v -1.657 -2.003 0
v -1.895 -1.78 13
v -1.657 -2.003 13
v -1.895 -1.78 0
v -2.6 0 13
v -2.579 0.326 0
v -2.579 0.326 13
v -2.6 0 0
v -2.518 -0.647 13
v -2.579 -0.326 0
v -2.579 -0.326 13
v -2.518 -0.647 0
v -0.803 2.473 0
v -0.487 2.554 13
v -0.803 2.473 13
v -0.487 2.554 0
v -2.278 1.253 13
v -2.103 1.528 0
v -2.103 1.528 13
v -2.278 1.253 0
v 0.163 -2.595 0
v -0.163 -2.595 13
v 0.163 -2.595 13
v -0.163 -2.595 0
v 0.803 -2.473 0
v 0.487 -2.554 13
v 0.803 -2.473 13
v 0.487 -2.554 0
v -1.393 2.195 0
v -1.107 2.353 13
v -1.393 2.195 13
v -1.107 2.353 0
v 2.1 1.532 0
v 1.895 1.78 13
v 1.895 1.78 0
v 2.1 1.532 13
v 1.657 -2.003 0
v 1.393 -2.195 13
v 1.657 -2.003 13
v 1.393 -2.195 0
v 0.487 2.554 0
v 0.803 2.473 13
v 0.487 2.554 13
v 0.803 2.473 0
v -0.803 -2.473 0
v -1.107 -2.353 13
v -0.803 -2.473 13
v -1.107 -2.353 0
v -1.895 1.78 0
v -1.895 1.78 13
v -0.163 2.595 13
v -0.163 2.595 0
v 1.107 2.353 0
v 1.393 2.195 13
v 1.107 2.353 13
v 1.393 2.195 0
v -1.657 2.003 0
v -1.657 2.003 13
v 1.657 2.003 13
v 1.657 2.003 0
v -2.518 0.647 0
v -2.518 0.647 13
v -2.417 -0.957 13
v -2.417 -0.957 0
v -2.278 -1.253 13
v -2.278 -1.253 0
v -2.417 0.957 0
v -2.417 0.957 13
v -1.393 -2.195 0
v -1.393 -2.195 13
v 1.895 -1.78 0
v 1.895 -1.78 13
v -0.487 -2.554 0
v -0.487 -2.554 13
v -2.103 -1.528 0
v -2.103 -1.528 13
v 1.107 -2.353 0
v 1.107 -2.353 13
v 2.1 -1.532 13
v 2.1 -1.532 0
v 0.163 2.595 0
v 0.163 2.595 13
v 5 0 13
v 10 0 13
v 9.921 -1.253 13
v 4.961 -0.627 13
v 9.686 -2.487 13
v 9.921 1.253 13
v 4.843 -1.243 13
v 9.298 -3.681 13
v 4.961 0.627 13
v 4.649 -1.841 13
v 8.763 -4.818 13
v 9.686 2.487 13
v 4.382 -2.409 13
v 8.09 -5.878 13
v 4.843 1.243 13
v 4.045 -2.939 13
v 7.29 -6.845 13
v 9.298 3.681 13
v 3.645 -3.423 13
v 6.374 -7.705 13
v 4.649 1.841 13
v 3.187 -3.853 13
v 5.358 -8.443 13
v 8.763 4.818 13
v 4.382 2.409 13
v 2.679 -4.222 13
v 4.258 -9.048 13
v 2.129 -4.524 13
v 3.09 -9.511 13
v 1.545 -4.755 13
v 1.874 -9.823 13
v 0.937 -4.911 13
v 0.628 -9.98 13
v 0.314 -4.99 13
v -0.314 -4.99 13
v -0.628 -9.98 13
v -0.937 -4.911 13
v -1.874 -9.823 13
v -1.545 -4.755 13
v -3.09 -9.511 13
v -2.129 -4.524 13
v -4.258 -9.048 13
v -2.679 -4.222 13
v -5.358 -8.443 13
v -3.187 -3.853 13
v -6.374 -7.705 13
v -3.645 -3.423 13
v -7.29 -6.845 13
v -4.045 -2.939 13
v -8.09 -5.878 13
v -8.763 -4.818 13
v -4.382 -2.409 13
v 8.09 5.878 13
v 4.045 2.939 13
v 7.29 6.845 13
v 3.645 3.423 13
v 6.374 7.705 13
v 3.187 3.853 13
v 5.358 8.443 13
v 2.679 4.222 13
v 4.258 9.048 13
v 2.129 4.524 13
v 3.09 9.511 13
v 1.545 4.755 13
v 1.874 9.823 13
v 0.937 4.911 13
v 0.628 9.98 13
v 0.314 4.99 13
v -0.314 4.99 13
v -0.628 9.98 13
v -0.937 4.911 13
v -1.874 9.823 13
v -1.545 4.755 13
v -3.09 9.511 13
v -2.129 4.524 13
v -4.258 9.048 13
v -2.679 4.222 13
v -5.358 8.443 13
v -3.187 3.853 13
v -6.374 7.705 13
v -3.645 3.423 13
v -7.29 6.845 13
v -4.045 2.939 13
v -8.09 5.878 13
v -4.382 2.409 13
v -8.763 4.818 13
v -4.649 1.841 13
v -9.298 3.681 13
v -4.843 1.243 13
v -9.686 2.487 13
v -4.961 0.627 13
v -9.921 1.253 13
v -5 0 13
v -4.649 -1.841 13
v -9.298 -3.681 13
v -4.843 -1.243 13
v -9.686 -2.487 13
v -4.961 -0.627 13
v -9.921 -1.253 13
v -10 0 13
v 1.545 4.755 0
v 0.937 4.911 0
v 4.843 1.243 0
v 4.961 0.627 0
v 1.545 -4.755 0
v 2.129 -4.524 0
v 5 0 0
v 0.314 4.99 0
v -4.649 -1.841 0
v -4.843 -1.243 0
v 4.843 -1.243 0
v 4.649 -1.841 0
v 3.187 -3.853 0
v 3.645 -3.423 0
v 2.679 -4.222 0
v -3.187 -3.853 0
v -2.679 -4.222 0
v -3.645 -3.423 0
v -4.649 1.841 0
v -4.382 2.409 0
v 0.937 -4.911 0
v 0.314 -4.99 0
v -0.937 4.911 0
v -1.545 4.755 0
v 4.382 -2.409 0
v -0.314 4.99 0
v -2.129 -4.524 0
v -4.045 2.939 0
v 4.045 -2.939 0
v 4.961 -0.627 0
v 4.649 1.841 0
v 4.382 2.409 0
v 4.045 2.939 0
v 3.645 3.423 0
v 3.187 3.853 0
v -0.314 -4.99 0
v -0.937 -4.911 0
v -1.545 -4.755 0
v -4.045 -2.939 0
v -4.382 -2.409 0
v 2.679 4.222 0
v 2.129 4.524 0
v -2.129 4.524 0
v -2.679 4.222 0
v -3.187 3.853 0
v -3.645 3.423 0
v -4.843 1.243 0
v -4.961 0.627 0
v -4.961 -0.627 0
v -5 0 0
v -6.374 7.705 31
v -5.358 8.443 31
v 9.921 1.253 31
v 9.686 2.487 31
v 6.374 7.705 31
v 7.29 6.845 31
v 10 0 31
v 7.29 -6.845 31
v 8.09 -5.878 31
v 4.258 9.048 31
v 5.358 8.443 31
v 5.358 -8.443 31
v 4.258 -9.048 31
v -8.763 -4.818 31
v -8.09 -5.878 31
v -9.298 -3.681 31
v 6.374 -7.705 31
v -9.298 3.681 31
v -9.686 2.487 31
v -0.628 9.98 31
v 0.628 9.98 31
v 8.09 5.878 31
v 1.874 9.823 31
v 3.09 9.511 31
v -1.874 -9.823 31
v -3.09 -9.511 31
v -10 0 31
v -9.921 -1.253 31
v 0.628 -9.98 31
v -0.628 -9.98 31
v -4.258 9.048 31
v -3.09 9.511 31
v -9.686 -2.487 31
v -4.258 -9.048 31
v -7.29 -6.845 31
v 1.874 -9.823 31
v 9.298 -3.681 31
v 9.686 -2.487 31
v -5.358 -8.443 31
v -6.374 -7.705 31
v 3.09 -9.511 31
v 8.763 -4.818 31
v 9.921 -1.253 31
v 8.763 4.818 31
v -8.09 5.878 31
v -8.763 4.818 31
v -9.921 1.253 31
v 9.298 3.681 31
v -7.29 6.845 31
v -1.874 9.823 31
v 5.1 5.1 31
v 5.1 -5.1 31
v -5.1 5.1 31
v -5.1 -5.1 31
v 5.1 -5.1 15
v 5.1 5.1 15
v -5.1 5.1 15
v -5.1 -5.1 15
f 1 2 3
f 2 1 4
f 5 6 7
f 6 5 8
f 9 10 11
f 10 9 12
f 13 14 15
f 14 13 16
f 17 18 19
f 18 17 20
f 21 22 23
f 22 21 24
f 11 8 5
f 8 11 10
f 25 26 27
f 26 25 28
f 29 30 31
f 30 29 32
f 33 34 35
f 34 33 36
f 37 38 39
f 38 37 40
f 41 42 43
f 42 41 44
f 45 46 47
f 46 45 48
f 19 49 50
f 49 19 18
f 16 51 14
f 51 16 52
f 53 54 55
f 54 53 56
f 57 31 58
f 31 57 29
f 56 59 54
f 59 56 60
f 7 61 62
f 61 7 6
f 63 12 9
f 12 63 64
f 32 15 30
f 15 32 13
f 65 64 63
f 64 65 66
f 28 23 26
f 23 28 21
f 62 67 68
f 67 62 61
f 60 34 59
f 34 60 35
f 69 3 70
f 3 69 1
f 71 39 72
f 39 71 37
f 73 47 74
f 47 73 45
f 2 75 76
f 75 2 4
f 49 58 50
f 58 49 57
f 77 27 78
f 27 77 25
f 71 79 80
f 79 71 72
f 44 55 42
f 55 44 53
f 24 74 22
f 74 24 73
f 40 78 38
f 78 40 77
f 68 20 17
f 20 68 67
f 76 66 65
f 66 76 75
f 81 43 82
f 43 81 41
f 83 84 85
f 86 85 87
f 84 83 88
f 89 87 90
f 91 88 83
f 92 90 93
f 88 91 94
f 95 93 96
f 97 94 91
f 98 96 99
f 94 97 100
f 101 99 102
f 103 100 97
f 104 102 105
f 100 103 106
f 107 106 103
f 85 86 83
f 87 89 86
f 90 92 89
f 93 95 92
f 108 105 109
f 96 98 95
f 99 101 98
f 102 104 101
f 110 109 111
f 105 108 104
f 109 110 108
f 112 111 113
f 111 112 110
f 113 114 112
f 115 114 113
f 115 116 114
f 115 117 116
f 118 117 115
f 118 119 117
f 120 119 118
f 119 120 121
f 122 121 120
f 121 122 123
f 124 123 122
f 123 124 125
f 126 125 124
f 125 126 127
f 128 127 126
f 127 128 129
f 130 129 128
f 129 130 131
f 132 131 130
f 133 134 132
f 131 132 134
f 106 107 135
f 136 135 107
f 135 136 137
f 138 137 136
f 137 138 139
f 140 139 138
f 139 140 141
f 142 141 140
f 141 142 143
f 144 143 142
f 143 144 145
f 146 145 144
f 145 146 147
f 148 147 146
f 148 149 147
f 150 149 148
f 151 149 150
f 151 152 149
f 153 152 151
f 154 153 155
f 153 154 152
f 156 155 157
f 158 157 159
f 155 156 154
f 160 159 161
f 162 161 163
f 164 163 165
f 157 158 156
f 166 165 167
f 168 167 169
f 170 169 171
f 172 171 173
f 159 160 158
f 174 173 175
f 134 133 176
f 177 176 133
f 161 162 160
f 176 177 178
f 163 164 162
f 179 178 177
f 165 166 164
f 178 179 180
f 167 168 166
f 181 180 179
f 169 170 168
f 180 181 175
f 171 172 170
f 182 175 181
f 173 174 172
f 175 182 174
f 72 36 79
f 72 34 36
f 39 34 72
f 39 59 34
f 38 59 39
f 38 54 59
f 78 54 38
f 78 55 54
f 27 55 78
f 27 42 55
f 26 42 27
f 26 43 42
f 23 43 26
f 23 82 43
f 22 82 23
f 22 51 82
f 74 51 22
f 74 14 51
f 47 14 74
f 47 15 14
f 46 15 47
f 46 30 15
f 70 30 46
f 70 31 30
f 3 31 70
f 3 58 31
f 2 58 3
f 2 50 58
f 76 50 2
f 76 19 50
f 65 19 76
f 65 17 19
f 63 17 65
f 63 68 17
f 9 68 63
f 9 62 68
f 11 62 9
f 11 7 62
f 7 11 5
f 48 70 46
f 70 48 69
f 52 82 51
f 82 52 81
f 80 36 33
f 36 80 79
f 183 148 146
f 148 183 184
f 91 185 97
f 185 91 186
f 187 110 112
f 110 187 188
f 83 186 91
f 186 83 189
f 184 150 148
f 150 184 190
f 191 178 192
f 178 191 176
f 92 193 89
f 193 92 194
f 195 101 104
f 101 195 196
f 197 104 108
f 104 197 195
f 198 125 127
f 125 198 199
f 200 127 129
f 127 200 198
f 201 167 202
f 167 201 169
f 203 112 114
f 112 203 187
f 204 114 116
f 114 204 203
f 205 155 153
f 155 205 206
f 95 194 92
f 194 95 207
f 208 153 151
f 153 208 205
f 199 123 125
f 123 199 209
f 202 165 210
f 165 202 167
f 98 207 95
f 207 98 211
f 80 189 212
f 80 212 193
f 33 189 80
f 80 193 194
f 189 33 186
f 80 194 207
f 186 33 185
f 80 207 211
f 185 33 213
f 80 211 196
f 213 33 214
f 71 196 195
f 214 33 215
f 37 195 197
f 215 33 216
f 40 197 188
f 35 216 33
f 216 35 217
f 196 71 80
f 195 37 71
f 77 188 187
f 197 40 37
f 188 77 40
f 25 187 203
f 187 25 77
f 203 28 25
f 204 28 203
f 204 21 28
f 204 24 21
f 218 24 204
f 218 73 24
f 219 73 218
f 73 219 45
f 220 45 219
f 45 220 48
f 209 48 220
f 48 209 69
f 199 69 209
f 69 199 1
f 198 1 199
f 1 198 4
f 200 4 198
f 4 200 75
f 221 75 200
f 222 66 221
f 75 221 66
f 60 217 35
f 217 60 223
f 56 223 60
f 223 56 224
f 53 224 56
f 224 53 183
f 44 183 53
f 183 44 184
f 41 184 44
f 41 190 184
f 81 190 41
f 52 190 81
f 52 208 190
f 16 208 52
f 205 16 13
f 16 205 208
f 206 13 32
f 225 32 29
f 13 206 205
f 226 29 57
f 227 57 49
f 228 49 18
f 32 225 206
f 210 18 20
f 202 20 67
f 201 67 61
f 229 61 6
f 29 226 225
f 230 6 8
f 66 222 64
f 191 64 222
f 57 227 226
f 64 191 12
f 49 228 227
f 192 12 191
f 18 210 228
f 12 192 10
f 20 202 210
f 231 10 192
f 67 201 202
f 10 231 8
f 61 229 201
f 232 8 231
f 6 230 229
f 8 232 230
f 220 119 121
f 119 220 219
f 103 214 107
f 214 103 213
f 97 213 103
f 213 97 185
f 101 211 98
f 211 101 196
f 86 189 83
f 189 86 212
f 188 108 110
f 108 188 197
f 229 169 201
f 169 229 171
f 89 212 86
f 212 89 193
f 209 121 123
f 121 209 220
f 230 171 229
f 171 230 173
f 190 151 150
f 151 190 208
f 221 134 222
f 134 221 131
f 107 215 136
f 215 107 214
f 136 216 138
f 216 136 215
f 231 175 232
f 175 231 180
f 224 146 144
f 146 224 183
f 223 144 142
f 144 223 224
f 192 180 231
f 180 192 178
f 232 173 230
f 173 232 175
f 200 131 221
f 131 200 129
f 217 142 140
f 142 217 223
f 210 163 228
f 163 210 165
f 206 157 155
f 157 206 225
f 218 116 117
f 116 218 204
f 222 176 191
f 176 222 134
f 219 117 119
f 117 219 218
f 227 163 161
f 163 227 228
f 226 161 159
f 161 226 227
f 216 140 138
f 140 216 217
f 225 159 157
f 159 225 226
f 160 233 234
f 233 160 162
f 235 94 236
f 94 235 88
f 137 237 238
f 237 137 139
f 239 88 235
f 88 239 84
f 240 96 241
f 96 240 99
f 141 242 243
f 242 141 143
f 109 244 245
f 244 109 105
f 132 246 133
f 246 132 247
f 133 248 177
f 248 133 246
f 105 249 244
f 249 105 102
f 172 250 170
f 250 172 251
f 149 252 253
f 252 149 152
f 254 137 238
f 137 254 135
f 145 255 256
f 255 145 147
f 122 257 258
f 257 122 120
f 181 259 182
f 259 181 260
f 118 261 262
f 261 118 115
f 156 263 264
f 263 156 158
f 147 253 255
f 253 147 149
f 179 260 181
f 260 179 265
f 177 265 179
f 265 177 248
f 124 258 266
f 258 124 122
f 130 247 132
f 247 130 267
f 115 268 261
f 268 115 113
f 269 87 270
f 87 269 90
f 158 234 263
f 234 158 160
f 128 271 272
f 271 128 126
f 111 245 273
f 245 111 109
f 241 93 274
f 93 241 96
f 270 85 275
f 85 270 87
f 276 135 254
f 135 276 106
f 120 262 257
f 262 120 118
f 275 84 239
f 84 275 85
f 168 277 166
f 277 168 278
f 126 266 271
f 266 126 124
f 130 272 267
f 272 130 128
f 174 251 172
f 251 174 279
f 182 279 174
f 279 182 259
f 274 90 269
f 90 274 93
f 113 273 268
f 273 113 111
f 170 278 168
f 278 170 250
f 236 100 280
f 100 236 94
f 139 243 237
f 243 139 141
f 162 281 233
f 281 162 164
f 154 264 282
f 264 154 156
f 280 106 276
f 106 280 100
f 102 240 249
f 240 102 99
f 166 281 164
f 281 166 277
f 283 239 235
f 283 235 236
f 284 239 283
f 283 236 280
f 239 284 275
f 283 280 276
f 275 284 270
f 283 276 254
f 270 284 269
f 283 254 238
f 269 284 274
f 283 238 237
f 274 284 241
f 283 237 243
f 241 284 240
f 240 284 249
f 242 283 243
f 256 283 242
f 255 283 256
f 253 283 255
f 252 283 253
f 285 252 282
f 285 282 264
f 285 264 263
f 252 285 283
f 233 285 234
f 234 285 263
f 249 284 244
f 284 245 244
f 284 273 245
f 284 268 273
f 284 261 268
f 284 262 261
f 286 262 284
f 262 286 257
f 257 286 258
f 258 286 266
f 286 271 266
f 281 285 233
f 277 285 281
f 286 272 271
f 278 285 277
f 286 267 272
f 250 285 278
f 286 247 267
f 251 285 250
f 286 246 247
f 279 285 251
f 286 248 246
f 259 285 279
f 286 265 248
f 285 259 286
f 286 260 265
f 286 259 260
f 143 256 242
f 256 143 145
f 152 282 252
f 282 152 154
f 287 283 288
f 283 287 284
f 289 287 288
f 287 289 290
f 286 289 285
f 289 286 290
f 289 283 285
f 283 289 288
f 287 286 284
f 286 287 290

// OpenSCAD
// Parts of the code (nema motor side shaft) taken from
// Parametric NEMA 17 Stepper Motor
// https://www.thingiverse.com/thing:4322777
// Copyright 2020 Jon A. Cruz


// gap for fitting to the pieces
gap = 0.2;

// constants for part fitting on the motor
epsilon = 0.01;
 _shaft_d = 5+gap;
 _shaft_l = 24;
 _notch_l = 15;
 _notch_d = .5;
 _h = 34;
 
 // cubic cupper shaft
 cube_side=10+gap;

// lower section
difference(){
    // lower tube full
    linear_extrude(13,twist=0)
        circle(d=10, $fn=50);

    // lower tube shaft 
    // measurements according to nema 17 motor parameters Jon A. Cruz
    translate([0, 0, -45]){
        difference(){
            // inner cylinder
           translate([0, 0, 2.5])
                cylinder(d = _shaft_d, h = _h - 2.5 + _shaft_l, $fn = 50);
            // notch
           translate([_shaft_d / 2 - _notch_d, -_shaft_d / 2 - epsilon, _h + _shaft_l - _notch_l + epsilon])
                cube([_notch_d + epsilon, _shaft_d + 2 * epsilon, _notch_l + epsilon]);
      }
  }
}

// upper sections
difference(){
    // upper tube full
    translate([0, 0, 13])
        linear_extrude(18,twist=0)
            circle(d=20, $fn=50);
    
    // upper tube shaft
    translate([-cube_side/2, -cube_side/2, 15])
        cube([cube_side,cube_side,cube_side+10]);
}
